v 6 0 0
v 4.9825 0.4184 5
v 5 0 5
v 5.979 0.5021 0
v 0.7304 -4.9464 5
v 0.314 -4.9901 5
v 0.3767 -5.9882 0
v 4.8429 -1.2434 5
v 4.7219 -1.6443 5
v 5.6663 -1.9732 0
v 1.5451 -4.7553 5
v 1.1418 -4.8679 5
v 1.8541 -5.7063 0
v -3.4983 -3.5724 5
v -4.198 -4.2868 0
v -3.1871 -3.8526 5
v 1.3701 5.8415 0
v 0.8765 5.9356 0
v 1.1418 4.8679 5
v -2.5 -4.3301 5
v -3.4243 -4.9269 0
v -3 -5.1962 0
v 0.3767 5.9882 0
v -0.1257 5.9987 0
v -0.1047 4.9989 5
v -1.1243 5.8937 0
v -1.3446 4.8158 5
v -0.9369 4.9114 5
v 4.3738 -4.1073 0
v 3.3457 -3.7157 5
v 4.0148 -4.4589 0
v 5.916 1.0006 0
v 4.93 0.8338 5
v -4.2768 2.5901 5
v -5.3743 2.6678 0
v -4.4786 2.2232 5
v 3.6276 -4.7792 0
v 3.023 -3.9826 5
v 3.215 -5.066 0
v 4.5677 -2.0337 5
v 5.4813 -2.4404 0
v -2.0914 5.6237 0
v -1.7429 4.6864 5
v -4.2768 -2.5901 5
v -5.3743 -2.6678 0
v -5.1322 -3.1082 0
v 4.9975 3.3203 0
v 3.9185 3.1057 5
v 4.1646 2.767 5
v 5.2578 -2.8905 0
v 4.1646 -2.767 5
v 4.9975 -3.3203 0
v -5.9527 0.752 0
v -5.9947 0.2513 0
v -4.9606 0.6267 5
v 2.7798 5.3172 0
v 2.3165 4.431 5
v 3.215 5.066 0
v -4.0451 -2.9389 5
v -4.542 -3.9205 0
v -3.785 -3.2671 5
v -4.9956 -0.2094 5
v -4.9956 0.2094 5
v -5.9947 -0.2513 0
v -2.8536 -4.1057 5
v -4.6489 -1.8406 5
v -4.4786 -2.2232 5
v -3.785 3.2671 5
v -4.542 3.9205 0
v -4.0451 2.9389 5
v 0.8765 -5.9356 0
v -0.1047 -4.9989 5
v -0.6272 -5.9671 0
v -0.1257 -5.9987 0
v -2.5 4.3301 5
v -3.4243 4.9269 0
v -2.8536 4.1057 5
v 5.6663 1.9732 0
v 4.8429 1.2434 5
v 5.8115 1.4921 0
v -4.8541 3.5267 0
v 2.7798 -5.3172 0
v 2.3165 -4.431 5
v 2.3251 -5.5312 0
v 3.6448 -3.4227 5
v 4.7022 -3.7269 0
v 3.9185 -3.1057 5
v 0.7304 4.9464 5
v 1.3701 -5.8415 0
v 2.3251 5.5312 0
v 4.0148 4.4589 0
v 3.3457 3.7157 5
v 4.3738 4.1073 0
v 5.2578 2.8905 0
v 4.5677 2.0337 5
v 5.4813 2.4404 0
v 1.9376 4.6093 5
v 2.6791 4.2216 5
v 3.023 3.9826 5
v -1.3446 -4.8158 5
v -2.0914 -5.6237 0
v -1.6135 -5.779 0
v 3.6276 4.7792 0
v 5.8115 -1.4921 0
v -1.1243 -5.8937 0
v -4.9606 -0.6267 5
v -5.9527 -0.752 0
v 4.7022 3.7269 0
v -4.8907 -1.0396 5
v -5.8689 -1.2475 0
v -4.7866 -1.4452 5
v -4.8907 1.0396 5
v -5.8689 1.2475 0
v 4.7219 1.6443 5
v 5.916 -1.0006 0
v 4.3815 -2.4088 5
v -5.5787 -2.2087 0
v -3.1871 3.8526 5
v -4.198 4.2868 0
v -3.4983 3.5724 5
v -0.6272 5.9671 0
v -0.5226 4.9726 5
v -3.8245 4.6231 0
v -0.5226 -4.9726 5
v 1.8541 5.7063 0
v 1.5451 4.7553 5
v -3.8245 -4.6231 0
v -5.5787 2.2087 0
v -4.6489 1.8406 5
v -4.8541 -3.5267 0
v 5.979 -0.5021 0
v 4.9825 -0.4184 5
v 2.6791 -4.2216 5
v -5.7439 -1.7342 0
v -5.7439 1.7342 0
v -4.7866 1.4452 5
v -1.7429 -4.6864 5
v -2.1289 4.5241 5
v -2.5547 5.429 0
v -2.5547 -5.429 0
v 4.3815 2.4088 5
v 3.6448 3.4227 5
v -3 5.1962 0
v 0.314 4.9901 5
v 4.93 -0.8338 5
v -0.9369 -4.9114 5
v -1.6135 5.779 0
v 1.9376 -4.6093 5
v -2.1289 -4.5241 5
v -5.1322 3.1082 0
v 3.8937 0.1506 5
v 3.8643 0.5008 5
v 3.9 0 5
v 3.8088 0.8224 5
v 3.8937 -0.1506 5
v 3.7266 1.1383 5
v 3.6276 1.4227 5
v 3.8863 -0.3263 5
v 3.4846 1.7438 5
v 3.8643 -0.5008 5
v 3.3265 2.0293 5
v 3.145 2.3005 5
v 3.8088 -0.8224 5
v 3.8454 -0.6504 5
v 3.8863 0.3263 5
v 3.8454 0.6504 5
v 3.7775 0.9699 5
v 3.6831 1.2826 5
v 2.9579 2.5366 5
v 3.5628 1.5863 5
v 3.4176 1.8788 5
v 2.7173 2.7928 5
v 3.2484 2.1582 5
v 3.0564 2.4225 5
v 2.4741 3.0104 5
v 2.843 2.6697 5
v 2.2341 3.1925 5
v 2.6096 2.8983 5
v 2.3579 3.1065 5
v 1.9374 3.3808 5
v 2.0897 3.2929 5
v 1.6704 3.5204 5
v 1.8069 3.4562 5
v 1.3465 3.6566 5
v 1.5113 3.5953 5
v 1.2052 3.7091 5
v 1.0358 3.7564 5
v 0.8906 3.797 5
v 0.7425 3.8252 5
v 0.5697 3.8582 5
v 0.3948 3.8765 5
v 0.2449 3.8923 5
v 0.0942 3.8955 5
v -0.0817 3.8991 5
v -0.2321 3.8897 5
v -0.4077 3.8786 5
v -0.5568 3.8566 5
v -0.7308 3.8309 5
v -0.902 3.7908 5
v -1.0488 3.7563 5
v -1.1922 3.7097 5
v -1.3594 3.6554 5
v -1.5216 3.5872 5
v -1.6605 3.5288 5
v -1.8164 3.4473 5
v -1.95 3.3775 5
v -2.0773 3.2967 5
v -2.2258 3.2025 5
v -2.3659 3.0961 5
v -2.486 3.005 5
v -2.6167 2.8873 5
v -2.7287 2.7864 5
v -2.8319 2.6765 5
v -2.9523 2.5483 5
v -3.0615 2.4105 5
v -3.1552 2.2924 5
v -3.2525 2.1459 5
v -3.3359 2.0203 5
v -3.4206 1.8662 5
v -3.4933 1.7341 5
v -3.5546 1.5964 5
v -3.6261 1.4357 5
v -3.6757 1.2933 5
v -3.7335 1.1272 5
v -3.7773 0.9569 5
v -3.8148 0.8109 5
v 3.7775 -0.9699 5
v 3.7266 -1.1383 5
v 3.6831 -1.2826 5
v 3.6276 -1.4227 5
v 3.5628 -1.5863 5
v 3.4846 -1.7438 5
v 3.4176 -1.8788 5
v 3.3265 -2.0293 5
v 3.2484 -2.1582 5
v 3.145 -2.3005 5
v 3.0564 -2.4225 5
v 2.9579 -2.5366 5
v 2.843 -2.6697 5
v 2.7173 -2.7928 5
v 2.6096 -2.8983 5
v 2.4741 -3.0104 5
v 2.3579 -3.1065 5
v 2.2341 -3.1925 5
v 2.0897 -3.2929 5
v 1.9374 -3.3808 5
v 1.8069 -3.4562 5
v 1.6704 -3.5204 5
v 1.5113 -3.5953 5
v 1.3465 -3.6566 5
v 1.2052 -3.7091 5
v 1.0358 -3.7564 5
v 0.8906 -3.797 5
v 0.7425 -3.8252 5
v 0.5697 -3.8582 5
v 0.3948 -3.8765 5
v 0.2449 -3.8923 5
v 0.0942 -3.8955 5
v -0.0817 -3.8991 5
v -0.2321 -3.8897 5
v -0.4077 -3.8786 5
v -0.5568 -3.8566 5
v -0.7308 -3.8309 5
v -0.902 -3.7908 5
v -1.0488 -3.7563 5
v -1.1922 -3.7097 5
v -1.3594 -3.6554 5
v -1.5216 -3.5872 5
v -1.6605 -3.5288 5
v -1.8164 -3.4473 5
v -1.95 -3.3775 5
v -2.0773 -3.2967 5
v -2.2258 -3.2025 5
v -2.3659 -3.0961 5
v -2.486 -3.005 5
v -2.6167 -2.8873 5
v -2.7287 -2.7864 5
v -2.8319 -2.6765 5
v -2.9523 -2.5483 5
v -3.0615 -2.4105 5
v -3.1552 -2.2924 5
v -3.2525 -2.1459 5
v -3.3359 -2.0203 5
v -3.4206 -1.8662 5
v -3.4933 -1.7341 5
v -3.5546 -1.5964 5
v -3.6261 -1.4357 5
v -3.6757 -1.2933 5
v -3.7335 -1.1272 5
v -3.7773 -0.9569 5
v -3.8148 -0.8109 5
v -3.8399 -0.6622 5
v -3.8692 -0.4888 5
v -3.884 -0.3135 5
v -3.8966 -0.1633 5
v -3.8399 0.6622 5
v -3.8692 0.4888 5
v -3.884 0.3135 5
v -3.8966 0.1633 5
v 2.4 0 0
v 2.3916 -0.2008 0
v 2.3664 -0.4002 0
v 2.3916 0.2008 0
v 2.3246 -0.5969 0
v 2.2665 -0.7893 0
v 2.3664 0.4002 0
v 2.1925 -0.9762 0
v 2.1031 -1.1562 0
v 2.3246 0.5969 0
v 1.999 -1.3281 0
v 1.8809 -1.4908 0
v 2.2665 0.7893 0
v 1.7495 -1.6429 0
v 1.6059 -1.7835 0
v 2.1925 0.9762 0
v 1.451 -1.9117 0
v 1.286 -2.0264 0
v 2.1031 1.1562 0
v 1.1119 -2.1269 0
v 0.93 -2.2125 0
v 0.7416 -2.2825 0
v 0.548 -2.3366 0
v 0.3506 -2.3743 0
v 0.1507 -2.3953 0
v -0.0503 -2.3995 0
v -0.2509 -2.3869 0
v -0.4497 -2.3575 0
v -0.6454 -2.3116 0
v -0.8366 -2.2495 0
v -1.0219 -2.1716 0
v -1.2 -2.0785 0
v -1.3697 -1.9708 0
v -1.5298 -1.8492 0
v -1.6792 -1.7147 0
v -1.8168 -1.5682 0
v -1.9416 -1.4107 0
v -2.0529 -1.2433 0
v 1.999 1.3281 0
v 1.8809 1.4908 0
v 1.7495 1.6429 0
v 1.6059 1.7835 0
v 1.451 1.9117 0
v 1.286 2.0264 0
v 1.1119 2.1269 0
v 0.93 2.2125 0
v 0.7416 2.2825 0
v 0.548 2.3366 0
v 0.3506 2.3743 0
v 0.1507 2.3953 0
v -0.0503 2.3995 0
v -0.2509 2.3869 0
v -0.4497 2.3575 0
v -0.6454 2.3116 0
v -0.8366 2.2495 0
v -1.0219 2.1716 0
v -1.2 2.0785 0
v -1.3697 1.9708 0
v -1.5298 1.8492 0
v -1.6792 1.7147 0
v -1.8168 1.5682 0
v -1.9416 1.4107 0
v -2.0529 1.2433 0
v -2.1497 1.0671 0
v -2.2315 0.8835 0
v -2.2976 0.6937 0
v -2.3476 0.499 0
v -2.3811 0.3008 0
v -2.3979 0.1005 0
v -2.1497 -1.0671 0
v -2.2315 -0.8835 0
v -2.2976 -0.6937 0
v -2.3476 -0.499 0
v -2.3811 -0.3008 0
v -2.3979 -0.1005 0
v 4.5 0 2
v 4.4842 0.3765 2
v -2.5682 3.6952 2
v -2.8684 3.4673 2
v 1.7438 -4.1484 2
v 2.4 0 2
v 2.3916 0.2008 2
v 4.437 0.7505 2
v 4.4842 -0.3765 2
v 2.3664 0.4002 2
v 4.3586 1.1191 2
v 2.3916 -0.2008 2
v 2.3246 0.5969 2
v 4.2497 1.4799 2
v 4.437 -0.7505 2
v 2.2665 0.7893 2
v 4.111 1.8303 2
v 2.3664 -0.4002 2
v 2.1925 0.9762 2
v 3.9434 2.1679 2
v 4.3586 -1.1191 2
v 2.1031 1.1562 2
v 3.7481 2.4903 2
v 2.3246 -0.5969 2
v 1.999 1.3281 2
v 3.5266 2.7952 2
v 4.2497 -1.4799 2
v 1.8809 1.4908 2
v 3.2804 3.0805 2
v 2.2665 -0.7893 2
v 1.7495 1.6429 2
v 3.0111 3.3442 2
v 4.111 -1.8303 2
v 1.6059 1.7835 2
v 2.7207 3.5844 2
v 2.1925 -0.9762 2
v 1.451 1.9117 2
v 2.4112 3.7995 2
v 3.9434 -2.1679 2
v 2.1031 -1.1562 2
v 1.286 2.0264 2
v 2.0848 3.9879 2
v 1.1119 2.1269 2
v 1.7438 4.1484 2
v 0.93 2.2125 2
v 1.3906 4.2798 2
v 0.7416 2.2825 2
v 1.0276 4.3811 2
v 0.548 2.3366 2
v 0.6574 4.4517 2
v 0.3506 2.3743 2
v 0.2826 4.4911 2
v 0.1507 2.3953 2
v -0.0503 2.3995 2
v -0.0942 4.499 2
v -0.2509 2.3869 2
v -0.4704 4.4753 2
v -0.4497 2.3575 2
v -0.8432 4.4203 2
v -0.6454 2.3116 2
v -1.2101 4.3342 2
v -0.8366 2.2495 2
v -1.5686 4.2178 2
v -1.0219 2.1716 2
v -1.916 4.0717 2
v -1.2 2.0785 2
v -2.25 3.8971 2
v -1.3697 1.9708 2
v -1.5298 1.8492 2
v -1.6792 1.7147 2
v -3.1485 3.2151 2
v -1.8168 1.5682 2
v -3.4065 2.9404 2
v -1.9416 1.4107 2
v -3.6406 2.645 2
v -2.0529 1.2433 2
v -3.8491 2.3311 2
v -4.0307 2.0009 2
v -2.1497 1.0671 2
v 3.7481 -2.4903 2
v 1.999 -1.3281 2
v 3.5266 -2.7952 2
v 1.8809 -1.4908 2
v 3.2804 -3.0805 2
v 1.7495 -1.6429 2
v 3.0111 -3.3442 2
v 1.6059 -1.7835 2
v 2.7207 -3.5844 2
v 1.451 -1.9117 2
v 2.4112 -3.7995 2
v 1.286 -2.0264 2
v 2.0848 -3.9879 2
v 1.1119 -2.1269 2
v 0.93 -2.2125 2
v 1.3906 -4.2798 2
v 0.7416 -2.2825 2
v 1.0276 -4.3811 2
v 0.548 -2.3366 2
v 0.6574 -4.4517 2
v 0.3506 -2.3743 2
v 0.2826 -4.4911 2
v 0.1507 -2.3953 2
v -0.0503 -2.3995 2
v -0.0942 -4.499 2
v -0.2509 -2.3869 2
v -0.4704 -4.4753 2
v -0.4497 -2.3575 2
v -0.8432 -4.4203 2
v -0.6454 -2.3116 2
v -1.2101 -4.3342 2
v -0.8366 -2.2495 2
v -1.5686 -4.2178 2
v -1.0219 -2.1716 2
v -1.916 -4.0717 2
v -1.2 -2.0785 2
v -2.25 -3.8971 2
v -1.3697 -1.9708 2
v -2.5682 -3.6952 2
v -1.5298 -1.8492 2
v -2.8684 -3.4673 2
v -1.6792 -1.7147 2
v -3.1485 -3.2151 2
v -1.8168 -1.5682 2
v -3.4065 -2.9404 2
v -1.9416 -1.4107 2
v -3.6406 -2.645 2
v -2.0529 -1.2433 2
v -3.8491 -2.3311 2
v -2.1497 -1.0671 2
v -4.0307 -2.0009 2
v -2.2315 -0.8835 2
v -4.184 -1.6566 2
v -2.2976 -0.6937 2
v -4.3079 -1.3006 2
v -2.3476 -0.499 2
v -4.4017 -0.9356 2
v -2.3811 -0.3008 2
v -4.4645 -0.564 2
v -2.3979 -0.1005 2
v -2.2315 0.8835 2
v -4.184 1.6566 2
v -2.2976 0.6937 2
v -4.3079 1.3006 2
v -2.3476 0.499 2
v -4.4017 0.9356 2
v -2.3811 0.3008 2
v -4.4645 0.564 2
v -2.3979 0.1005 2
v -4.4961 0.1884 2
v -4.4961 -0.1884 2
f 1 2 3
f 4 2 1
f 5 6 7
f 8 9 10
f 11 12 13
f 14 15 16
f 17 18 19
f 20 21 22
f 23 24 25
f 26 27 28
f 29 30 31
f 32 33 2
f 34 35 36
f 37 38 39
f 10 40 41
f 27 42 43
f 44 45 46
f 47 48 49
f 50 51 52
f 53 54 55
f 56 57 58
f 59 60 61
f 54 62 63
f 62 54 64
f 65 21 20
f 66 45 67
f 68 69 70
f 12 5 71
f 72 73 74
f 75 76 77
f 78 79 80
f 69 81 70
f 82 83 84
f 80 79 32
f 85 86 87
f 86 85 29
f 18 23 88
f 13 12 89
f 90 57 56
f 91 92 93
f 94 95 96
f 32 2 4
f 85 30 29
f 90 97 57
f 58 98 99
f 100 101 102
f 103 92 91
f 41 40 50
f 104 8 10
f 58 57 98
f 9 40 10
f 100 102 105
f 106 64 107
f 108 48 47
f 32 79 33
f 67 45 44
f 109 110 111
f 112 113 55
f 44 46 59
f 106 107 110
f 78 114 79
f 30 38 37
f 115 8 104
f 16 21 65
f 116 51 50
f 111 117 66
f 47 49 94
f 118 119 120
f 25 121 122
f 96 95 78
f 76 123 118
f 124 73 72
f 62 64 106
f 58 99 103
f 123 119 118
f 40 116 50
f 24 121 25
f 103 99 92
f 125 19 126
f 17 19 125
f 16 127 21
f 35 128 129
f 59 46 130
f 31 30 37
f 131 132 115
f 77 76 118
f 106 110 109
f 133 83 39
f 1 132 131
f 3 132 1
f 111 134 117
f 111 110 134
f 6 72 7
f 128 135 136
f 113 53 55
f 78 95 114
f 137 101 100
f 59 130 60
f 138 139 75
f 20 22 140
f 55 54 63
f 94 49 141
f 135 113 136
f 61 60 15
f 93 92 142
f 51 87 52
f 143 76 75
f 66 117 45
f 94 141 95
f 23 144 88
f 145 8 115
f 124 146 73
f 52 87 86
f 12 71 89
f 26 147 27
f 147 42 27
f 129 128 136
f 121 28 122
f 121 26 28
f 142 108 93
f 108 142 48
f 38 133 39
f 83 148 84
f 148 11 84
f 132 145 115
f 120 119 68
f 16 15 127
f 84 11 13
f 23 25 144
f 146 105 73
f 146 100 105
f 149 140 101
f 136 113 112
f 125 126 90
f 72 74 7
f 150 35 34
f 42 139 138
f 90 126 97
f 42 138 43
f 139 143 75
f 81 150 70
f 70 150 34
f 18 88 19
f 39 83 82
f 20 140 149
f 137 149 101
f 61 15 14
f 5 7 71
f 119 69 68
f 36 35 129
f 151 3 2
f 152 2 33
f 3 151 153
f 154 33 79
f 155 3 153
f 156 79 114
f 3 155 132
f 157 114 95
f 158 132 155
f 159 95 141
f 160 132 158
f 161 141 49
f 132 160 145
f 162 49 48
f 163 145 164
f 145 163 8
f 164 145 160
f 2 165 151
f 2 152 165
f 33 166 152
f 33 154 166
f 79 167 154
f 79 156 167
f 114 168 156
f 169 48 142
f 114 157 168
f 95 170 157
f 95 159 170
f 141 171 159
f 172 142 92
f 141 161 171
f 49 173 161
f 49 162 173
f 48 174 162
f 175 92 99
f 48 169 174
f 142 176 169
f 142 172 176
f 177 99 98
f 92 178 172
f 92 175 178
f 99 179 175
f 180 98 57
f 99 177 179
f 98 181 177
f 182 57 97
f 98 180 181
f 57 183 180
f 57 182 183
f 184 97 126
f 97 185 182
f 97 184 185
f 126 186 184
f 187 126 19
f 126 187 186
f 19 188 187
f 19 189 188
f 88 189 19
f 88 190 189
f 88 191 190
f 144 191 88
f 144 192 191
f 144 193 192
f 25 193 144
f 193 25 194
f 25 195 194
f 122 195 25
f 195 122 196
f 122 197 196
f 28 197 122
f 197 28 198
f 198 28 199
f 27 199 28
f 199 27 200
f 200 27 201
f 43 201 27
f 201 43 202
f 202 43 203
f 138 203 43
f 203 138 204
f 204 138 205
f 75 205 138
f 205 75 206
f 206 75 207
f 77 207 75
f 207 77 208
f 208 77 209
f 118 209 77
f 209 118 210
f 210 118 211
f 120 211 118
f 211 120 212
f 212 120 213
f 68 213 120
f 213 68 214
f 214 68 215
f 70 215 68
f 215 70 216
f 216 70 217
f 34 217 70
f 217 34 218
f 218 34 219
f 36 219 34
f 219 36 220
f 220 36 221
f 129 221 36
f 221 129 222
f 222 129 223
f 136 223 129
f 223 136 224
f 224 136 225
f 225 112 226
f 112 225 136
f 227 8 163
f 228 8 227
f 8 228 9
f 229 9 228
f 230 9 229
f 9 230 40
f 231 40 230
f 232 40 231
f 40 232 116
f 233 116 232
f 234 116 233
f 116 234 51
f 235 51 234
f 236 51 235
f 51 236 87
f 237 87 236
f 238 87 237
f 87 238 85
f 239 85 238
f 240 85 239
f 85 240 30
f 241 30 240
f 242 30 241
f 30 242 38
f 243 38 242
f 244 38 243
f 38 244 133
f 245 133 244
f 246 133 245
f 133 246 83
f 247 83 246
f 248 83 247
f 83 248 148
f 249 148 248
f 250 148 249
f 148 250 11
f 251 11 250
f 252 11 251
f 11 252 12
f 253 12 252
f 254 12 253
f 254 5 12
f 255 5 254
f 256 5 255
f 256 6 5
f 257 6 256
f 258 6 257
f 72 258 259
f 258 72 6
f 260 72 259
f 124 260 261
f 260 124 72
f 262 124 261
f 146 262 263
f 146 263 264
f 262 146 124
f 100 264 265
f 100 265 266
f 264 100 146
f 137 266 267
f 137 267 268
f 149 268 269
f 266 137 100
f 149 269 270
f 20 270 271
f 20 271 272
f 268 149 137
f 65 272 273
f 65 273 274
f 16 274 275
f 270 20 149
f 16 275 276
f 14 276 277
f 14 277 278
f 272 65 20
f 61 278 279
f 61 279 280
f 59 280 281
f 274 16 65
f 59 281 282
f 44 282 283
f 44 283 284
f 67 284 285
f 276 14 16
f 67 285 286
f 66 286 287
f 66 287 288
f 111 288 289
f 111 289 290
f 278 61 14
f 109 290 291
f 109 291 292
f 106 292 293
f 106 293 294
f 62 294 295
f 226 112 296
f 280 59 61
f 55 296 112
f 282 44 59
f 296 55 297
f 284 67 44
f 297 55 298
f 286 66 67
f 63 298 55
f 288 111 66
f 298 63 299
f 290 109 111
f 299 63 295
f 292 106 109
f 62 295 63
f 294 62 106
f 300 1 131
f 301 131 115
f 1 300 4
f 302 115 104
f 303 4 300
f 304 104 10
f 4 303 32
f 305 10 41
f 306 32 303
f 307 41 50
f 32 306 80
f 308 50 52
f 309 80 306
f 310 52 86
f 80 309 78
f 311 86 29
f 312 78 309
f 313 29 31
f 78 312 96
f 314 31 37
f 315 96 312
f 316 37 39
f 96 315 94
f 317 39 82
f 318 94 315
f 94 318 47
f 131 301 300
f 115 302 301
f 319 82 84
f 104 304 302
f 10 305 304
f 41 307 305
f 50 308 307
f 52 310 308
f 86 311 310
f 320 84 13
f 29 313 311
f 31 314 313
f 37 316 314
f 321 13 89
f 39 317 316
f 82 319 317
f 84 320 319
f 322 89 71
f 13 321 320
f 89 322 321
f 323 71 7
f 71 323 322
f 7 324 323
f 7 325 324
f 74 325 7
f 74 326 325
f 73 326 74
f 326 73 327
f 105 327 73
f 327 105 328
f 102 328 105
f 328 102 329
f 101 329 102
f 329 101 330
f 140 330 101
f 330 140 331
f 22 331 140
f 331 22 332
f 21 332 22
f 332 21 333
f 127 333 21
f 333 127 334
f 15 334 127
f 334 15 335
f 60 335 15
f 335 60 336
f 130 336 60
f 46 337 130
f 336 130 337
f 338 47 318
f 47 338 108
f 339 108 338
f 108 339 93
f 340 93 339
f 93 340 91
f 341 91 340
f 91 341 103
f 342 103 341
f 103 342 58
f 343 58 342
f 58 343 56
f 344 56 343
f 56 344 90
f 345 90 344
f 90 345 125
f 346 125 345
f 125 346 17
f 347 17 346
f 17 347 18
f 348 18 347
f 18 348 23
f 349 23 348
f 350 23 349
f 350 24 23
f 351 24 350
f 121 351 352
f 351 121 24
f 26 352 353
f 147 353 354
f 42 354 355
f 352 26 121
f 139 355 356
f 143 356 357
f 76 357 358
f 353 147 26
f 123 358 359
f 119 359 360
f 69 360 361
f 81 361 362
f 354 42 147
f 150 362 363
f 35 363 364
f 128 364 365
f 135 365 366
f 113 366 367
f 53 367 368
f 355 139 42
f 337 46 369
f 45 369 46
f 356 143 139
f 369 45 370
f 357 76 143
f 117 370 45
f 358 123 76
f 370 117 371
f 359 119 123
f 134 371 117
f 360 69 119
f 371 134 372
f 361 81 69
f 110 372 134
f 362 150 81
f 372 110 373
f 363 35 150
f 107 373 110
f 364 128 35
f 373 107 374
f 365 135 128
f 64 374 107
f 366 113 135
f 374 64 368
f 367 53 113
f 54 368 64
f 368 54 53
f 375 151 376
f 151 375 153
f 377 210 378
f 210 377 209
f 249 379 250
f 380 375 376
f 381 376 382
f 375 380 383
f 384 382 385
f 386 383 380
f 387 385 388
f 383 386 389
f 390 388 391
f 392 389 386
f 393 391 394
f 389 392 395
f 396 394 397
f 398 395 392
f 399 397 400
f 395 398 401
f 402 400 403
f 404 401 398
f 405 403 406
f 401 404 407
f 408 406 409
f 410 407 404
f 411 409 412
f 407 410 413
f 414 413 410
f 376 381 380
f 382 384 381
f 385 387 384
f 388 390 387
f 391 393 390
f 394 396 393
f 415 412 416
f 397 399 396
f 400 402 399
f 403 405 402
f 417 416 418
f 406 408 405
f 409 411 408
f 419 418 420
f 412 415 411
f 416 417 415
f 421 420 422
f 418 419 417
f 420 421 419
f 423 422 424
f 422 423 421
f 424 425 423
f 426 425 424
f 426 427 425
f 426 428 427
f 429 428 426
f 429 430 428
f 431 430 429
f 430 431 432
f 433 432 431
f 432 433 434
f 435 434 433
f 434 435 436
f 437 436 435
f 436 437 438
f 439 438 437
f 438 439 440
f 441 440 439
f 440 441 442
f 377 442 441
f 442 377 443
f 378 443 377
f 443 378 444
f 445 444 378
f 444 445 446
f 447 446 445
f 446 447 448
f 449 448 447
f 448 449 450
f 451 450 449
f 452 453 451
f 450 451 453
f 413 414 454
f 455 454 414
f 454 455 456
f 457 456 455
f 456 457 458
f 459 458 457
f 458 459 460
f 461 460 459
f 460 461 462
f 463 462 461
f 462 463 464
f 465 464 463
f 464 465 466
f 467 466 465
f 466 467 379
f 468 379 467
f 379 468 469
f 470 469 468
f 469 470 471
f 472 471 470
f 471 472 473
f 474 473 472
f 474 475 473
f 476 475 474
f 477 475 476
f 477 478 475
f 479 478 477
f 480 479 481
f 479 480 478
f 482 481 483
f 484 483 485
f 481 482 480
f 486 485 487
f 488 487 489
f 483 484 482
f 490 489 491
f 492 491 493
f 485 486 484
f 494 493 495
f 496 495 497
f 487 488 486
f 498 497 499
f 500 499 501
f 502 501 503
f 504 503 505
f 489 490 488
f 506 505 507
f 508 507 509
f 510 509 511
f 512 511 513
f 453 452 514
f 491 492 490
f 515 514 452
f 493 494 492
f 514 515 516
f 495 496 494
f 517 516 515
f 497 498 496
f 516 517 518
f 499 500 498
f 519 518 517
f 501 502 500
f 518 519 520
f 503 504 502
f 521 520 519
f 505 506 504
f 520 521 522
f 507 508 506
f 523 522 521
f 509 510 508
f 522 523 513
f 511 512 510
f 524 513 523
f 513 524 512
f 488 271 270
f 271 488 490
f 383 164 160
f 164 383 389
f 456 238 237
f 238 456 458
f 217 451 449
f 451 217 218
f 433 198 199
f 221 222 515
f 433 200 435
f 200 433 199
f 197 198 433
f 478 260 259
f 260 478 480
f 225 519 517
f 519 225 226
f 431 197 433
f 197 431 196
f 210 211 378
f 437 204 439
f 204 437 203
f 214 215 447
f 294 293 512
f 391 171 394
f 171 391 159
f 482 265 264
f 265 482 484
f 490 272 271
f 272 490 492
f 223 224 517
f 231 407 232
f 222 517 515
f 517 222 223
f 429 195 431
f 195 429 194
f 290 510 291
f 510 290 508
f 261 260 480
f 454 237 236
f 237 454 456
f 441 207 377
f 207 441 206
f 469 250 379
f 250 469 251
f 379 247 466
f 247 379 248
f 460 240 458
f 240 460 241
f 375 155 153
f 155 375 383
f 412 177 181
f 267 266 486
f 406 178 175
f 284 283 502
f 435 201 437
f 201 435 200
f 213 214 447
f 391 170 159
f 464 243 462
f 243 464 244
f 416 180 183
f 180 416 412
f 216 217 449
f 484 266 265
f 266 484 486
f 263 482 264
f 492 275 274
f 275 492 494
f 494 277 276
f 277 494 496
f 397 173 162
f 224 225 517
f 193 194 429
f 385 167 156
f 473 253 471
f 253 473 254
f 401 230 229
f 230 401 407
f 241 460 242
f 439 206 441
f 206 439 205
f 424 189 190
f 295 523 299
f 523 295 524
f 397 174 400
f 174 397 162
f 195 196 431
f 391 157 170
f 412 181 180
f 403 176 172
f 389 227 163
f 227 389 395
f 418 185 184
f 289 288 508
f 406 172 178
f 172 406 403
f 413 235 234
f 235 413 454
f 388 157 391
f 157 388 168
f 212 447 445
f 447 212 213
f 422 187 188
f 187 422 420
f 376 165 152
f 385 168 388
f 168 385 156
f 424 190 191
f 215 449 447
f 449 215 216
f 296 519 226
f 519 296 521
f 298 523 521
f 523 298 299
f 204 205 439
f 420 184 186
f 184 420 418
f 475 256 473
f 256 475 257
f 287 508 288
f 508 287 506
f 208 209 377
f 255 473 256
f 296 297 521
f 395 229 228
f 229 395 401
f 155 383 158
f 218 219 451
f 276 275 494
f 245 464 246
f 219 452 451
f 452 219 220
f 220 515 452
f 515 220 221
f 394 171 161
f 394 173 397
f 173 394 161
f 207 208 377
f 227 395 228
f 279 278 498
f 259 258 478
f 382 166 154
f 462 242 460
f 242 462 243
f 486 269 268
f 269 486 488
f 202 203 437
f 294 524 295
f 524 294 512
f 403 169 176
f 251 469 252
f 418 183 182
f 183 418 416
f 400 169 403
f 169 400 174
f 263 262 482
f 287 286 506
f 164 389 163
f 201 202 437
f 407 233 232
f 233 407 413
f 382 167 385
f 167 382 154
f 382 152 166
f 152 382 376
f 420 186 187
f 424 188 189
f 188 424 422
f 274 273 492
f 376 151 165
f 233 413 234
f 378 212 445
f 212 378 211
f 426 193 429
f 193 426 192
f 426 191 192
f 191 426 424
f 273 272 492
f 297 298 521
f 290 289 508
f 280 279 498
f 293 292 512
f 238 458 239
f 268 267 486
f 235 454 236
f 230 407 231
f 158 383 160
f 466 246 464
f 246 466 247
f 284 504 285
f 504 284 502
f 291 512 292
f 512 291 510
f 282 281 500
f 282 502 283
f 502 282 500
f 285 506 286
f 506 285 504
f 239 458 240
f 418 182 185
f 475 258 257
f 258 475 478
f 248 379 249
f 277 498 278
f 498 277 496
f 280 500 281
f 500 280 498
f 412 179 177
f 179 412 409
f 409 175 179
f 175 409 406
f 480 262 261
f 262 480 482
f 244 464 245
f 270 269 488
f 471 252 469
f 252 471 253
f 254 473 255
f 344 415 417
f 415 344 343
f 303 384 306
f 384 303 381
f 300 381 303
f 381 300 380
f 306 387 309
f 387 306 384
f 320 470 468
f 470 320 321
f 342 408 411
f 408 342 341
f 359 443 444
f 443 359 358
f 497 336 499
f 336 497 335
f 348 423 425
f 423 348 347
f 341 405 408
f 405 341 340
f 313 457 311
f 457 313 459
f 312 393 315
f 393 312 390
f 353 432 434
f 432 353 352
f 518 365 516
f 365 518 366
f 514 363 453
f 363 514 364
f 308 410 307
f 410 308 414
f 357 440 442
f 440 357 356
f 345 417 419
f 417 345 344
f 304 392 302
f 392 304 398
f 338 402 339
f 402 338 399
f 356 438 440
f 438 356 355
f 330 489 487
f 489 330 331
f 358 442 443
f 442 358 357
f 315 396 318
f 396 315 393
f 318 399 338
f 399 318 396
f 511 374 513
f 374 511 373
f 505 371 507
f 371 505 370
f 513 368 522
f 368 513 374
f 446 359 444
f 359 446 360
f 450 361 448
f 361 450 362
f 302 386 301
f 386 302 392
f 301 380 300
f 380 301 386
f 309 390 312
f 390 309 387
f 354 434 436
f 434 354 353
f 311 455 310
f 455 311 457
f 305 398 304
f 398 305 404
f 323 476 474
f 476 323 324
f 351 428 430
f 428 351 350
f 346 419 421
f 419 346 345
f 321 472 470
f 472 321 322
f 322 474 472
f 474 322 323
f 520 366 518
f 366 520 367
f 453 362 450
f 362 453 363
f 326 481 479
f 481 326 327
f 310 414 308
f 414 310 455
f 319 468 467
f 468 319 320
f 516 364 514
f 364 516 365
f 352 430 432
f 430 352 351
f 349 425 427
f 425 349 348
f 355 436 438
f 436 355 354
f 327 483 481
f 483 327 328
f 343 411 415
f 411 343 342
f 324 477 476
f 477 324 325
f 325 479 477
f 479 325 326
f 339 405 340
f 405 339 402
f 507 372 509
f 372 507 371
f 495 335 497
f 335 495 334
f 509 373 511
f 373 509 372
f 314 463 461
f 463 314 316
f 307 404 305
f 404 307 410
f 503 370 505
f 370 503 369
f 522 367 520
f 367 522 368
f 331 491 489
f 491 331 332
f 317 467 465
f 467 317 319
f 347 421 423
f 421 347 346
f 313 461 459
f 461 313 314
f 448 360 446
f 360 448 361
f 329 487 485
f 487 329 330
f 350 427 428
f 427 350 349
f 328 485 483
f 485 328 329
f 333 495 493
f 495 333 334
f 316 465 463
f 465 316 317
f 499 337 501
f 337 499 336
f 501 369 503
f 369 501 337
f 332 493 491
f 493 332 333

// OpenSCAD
$fn=75;

DiametroArriba=10; // Boca del plato en mm
DiametroAbajo=12;   // Base del plato en mm
Altura=5;          // Altura del plato en mm
Espesor=3;          // Espesor de las paredes del plato en mm
TornilloDiametro=4.8; // Diámetro del tornillo

module AgujeroTornillo(Alto,Diametro){
    translate([0,0,-0.1]) cylinder(h=Alto, r=Diametro/2);
}
module Casco(DiametroMayor, DiametroMenor, Alto, Espesor){
    difference(){
            cylinder(h=Alto, r2=DiametroMayor/2, r1=DiametroMenor/2);
            translate([0,0,Espesor/1.5]) cylinder(h=Alto, r1=DiametroMenor/2-Espesor/2, r2=DiametroMayor/2-Espesor/2);
        };
    }
    
module PataChasis(DiametroMayor, DiametroMenor, Alto, Espesor, TornilloDiametro){
    difference(){
        Casco(DiametroMayor, DiametroMenor, Alto, Espesor);
        AgujeroTornillo(Alto,TornilloDiametro);
        
    };
    
}


PataChasis(DiametroMayor=DiametroArriba, DiametroMenor=DiametroAbajo, Alto=Altura, Espesor=Espesor, TornilloDiametro=TornilloDiametro);
//CascoConAgujero(DiametroMayor=DiametroArriba, DiametroMenor=DiametroAbajo, Alto=Altura, Espesor=Espesor);
